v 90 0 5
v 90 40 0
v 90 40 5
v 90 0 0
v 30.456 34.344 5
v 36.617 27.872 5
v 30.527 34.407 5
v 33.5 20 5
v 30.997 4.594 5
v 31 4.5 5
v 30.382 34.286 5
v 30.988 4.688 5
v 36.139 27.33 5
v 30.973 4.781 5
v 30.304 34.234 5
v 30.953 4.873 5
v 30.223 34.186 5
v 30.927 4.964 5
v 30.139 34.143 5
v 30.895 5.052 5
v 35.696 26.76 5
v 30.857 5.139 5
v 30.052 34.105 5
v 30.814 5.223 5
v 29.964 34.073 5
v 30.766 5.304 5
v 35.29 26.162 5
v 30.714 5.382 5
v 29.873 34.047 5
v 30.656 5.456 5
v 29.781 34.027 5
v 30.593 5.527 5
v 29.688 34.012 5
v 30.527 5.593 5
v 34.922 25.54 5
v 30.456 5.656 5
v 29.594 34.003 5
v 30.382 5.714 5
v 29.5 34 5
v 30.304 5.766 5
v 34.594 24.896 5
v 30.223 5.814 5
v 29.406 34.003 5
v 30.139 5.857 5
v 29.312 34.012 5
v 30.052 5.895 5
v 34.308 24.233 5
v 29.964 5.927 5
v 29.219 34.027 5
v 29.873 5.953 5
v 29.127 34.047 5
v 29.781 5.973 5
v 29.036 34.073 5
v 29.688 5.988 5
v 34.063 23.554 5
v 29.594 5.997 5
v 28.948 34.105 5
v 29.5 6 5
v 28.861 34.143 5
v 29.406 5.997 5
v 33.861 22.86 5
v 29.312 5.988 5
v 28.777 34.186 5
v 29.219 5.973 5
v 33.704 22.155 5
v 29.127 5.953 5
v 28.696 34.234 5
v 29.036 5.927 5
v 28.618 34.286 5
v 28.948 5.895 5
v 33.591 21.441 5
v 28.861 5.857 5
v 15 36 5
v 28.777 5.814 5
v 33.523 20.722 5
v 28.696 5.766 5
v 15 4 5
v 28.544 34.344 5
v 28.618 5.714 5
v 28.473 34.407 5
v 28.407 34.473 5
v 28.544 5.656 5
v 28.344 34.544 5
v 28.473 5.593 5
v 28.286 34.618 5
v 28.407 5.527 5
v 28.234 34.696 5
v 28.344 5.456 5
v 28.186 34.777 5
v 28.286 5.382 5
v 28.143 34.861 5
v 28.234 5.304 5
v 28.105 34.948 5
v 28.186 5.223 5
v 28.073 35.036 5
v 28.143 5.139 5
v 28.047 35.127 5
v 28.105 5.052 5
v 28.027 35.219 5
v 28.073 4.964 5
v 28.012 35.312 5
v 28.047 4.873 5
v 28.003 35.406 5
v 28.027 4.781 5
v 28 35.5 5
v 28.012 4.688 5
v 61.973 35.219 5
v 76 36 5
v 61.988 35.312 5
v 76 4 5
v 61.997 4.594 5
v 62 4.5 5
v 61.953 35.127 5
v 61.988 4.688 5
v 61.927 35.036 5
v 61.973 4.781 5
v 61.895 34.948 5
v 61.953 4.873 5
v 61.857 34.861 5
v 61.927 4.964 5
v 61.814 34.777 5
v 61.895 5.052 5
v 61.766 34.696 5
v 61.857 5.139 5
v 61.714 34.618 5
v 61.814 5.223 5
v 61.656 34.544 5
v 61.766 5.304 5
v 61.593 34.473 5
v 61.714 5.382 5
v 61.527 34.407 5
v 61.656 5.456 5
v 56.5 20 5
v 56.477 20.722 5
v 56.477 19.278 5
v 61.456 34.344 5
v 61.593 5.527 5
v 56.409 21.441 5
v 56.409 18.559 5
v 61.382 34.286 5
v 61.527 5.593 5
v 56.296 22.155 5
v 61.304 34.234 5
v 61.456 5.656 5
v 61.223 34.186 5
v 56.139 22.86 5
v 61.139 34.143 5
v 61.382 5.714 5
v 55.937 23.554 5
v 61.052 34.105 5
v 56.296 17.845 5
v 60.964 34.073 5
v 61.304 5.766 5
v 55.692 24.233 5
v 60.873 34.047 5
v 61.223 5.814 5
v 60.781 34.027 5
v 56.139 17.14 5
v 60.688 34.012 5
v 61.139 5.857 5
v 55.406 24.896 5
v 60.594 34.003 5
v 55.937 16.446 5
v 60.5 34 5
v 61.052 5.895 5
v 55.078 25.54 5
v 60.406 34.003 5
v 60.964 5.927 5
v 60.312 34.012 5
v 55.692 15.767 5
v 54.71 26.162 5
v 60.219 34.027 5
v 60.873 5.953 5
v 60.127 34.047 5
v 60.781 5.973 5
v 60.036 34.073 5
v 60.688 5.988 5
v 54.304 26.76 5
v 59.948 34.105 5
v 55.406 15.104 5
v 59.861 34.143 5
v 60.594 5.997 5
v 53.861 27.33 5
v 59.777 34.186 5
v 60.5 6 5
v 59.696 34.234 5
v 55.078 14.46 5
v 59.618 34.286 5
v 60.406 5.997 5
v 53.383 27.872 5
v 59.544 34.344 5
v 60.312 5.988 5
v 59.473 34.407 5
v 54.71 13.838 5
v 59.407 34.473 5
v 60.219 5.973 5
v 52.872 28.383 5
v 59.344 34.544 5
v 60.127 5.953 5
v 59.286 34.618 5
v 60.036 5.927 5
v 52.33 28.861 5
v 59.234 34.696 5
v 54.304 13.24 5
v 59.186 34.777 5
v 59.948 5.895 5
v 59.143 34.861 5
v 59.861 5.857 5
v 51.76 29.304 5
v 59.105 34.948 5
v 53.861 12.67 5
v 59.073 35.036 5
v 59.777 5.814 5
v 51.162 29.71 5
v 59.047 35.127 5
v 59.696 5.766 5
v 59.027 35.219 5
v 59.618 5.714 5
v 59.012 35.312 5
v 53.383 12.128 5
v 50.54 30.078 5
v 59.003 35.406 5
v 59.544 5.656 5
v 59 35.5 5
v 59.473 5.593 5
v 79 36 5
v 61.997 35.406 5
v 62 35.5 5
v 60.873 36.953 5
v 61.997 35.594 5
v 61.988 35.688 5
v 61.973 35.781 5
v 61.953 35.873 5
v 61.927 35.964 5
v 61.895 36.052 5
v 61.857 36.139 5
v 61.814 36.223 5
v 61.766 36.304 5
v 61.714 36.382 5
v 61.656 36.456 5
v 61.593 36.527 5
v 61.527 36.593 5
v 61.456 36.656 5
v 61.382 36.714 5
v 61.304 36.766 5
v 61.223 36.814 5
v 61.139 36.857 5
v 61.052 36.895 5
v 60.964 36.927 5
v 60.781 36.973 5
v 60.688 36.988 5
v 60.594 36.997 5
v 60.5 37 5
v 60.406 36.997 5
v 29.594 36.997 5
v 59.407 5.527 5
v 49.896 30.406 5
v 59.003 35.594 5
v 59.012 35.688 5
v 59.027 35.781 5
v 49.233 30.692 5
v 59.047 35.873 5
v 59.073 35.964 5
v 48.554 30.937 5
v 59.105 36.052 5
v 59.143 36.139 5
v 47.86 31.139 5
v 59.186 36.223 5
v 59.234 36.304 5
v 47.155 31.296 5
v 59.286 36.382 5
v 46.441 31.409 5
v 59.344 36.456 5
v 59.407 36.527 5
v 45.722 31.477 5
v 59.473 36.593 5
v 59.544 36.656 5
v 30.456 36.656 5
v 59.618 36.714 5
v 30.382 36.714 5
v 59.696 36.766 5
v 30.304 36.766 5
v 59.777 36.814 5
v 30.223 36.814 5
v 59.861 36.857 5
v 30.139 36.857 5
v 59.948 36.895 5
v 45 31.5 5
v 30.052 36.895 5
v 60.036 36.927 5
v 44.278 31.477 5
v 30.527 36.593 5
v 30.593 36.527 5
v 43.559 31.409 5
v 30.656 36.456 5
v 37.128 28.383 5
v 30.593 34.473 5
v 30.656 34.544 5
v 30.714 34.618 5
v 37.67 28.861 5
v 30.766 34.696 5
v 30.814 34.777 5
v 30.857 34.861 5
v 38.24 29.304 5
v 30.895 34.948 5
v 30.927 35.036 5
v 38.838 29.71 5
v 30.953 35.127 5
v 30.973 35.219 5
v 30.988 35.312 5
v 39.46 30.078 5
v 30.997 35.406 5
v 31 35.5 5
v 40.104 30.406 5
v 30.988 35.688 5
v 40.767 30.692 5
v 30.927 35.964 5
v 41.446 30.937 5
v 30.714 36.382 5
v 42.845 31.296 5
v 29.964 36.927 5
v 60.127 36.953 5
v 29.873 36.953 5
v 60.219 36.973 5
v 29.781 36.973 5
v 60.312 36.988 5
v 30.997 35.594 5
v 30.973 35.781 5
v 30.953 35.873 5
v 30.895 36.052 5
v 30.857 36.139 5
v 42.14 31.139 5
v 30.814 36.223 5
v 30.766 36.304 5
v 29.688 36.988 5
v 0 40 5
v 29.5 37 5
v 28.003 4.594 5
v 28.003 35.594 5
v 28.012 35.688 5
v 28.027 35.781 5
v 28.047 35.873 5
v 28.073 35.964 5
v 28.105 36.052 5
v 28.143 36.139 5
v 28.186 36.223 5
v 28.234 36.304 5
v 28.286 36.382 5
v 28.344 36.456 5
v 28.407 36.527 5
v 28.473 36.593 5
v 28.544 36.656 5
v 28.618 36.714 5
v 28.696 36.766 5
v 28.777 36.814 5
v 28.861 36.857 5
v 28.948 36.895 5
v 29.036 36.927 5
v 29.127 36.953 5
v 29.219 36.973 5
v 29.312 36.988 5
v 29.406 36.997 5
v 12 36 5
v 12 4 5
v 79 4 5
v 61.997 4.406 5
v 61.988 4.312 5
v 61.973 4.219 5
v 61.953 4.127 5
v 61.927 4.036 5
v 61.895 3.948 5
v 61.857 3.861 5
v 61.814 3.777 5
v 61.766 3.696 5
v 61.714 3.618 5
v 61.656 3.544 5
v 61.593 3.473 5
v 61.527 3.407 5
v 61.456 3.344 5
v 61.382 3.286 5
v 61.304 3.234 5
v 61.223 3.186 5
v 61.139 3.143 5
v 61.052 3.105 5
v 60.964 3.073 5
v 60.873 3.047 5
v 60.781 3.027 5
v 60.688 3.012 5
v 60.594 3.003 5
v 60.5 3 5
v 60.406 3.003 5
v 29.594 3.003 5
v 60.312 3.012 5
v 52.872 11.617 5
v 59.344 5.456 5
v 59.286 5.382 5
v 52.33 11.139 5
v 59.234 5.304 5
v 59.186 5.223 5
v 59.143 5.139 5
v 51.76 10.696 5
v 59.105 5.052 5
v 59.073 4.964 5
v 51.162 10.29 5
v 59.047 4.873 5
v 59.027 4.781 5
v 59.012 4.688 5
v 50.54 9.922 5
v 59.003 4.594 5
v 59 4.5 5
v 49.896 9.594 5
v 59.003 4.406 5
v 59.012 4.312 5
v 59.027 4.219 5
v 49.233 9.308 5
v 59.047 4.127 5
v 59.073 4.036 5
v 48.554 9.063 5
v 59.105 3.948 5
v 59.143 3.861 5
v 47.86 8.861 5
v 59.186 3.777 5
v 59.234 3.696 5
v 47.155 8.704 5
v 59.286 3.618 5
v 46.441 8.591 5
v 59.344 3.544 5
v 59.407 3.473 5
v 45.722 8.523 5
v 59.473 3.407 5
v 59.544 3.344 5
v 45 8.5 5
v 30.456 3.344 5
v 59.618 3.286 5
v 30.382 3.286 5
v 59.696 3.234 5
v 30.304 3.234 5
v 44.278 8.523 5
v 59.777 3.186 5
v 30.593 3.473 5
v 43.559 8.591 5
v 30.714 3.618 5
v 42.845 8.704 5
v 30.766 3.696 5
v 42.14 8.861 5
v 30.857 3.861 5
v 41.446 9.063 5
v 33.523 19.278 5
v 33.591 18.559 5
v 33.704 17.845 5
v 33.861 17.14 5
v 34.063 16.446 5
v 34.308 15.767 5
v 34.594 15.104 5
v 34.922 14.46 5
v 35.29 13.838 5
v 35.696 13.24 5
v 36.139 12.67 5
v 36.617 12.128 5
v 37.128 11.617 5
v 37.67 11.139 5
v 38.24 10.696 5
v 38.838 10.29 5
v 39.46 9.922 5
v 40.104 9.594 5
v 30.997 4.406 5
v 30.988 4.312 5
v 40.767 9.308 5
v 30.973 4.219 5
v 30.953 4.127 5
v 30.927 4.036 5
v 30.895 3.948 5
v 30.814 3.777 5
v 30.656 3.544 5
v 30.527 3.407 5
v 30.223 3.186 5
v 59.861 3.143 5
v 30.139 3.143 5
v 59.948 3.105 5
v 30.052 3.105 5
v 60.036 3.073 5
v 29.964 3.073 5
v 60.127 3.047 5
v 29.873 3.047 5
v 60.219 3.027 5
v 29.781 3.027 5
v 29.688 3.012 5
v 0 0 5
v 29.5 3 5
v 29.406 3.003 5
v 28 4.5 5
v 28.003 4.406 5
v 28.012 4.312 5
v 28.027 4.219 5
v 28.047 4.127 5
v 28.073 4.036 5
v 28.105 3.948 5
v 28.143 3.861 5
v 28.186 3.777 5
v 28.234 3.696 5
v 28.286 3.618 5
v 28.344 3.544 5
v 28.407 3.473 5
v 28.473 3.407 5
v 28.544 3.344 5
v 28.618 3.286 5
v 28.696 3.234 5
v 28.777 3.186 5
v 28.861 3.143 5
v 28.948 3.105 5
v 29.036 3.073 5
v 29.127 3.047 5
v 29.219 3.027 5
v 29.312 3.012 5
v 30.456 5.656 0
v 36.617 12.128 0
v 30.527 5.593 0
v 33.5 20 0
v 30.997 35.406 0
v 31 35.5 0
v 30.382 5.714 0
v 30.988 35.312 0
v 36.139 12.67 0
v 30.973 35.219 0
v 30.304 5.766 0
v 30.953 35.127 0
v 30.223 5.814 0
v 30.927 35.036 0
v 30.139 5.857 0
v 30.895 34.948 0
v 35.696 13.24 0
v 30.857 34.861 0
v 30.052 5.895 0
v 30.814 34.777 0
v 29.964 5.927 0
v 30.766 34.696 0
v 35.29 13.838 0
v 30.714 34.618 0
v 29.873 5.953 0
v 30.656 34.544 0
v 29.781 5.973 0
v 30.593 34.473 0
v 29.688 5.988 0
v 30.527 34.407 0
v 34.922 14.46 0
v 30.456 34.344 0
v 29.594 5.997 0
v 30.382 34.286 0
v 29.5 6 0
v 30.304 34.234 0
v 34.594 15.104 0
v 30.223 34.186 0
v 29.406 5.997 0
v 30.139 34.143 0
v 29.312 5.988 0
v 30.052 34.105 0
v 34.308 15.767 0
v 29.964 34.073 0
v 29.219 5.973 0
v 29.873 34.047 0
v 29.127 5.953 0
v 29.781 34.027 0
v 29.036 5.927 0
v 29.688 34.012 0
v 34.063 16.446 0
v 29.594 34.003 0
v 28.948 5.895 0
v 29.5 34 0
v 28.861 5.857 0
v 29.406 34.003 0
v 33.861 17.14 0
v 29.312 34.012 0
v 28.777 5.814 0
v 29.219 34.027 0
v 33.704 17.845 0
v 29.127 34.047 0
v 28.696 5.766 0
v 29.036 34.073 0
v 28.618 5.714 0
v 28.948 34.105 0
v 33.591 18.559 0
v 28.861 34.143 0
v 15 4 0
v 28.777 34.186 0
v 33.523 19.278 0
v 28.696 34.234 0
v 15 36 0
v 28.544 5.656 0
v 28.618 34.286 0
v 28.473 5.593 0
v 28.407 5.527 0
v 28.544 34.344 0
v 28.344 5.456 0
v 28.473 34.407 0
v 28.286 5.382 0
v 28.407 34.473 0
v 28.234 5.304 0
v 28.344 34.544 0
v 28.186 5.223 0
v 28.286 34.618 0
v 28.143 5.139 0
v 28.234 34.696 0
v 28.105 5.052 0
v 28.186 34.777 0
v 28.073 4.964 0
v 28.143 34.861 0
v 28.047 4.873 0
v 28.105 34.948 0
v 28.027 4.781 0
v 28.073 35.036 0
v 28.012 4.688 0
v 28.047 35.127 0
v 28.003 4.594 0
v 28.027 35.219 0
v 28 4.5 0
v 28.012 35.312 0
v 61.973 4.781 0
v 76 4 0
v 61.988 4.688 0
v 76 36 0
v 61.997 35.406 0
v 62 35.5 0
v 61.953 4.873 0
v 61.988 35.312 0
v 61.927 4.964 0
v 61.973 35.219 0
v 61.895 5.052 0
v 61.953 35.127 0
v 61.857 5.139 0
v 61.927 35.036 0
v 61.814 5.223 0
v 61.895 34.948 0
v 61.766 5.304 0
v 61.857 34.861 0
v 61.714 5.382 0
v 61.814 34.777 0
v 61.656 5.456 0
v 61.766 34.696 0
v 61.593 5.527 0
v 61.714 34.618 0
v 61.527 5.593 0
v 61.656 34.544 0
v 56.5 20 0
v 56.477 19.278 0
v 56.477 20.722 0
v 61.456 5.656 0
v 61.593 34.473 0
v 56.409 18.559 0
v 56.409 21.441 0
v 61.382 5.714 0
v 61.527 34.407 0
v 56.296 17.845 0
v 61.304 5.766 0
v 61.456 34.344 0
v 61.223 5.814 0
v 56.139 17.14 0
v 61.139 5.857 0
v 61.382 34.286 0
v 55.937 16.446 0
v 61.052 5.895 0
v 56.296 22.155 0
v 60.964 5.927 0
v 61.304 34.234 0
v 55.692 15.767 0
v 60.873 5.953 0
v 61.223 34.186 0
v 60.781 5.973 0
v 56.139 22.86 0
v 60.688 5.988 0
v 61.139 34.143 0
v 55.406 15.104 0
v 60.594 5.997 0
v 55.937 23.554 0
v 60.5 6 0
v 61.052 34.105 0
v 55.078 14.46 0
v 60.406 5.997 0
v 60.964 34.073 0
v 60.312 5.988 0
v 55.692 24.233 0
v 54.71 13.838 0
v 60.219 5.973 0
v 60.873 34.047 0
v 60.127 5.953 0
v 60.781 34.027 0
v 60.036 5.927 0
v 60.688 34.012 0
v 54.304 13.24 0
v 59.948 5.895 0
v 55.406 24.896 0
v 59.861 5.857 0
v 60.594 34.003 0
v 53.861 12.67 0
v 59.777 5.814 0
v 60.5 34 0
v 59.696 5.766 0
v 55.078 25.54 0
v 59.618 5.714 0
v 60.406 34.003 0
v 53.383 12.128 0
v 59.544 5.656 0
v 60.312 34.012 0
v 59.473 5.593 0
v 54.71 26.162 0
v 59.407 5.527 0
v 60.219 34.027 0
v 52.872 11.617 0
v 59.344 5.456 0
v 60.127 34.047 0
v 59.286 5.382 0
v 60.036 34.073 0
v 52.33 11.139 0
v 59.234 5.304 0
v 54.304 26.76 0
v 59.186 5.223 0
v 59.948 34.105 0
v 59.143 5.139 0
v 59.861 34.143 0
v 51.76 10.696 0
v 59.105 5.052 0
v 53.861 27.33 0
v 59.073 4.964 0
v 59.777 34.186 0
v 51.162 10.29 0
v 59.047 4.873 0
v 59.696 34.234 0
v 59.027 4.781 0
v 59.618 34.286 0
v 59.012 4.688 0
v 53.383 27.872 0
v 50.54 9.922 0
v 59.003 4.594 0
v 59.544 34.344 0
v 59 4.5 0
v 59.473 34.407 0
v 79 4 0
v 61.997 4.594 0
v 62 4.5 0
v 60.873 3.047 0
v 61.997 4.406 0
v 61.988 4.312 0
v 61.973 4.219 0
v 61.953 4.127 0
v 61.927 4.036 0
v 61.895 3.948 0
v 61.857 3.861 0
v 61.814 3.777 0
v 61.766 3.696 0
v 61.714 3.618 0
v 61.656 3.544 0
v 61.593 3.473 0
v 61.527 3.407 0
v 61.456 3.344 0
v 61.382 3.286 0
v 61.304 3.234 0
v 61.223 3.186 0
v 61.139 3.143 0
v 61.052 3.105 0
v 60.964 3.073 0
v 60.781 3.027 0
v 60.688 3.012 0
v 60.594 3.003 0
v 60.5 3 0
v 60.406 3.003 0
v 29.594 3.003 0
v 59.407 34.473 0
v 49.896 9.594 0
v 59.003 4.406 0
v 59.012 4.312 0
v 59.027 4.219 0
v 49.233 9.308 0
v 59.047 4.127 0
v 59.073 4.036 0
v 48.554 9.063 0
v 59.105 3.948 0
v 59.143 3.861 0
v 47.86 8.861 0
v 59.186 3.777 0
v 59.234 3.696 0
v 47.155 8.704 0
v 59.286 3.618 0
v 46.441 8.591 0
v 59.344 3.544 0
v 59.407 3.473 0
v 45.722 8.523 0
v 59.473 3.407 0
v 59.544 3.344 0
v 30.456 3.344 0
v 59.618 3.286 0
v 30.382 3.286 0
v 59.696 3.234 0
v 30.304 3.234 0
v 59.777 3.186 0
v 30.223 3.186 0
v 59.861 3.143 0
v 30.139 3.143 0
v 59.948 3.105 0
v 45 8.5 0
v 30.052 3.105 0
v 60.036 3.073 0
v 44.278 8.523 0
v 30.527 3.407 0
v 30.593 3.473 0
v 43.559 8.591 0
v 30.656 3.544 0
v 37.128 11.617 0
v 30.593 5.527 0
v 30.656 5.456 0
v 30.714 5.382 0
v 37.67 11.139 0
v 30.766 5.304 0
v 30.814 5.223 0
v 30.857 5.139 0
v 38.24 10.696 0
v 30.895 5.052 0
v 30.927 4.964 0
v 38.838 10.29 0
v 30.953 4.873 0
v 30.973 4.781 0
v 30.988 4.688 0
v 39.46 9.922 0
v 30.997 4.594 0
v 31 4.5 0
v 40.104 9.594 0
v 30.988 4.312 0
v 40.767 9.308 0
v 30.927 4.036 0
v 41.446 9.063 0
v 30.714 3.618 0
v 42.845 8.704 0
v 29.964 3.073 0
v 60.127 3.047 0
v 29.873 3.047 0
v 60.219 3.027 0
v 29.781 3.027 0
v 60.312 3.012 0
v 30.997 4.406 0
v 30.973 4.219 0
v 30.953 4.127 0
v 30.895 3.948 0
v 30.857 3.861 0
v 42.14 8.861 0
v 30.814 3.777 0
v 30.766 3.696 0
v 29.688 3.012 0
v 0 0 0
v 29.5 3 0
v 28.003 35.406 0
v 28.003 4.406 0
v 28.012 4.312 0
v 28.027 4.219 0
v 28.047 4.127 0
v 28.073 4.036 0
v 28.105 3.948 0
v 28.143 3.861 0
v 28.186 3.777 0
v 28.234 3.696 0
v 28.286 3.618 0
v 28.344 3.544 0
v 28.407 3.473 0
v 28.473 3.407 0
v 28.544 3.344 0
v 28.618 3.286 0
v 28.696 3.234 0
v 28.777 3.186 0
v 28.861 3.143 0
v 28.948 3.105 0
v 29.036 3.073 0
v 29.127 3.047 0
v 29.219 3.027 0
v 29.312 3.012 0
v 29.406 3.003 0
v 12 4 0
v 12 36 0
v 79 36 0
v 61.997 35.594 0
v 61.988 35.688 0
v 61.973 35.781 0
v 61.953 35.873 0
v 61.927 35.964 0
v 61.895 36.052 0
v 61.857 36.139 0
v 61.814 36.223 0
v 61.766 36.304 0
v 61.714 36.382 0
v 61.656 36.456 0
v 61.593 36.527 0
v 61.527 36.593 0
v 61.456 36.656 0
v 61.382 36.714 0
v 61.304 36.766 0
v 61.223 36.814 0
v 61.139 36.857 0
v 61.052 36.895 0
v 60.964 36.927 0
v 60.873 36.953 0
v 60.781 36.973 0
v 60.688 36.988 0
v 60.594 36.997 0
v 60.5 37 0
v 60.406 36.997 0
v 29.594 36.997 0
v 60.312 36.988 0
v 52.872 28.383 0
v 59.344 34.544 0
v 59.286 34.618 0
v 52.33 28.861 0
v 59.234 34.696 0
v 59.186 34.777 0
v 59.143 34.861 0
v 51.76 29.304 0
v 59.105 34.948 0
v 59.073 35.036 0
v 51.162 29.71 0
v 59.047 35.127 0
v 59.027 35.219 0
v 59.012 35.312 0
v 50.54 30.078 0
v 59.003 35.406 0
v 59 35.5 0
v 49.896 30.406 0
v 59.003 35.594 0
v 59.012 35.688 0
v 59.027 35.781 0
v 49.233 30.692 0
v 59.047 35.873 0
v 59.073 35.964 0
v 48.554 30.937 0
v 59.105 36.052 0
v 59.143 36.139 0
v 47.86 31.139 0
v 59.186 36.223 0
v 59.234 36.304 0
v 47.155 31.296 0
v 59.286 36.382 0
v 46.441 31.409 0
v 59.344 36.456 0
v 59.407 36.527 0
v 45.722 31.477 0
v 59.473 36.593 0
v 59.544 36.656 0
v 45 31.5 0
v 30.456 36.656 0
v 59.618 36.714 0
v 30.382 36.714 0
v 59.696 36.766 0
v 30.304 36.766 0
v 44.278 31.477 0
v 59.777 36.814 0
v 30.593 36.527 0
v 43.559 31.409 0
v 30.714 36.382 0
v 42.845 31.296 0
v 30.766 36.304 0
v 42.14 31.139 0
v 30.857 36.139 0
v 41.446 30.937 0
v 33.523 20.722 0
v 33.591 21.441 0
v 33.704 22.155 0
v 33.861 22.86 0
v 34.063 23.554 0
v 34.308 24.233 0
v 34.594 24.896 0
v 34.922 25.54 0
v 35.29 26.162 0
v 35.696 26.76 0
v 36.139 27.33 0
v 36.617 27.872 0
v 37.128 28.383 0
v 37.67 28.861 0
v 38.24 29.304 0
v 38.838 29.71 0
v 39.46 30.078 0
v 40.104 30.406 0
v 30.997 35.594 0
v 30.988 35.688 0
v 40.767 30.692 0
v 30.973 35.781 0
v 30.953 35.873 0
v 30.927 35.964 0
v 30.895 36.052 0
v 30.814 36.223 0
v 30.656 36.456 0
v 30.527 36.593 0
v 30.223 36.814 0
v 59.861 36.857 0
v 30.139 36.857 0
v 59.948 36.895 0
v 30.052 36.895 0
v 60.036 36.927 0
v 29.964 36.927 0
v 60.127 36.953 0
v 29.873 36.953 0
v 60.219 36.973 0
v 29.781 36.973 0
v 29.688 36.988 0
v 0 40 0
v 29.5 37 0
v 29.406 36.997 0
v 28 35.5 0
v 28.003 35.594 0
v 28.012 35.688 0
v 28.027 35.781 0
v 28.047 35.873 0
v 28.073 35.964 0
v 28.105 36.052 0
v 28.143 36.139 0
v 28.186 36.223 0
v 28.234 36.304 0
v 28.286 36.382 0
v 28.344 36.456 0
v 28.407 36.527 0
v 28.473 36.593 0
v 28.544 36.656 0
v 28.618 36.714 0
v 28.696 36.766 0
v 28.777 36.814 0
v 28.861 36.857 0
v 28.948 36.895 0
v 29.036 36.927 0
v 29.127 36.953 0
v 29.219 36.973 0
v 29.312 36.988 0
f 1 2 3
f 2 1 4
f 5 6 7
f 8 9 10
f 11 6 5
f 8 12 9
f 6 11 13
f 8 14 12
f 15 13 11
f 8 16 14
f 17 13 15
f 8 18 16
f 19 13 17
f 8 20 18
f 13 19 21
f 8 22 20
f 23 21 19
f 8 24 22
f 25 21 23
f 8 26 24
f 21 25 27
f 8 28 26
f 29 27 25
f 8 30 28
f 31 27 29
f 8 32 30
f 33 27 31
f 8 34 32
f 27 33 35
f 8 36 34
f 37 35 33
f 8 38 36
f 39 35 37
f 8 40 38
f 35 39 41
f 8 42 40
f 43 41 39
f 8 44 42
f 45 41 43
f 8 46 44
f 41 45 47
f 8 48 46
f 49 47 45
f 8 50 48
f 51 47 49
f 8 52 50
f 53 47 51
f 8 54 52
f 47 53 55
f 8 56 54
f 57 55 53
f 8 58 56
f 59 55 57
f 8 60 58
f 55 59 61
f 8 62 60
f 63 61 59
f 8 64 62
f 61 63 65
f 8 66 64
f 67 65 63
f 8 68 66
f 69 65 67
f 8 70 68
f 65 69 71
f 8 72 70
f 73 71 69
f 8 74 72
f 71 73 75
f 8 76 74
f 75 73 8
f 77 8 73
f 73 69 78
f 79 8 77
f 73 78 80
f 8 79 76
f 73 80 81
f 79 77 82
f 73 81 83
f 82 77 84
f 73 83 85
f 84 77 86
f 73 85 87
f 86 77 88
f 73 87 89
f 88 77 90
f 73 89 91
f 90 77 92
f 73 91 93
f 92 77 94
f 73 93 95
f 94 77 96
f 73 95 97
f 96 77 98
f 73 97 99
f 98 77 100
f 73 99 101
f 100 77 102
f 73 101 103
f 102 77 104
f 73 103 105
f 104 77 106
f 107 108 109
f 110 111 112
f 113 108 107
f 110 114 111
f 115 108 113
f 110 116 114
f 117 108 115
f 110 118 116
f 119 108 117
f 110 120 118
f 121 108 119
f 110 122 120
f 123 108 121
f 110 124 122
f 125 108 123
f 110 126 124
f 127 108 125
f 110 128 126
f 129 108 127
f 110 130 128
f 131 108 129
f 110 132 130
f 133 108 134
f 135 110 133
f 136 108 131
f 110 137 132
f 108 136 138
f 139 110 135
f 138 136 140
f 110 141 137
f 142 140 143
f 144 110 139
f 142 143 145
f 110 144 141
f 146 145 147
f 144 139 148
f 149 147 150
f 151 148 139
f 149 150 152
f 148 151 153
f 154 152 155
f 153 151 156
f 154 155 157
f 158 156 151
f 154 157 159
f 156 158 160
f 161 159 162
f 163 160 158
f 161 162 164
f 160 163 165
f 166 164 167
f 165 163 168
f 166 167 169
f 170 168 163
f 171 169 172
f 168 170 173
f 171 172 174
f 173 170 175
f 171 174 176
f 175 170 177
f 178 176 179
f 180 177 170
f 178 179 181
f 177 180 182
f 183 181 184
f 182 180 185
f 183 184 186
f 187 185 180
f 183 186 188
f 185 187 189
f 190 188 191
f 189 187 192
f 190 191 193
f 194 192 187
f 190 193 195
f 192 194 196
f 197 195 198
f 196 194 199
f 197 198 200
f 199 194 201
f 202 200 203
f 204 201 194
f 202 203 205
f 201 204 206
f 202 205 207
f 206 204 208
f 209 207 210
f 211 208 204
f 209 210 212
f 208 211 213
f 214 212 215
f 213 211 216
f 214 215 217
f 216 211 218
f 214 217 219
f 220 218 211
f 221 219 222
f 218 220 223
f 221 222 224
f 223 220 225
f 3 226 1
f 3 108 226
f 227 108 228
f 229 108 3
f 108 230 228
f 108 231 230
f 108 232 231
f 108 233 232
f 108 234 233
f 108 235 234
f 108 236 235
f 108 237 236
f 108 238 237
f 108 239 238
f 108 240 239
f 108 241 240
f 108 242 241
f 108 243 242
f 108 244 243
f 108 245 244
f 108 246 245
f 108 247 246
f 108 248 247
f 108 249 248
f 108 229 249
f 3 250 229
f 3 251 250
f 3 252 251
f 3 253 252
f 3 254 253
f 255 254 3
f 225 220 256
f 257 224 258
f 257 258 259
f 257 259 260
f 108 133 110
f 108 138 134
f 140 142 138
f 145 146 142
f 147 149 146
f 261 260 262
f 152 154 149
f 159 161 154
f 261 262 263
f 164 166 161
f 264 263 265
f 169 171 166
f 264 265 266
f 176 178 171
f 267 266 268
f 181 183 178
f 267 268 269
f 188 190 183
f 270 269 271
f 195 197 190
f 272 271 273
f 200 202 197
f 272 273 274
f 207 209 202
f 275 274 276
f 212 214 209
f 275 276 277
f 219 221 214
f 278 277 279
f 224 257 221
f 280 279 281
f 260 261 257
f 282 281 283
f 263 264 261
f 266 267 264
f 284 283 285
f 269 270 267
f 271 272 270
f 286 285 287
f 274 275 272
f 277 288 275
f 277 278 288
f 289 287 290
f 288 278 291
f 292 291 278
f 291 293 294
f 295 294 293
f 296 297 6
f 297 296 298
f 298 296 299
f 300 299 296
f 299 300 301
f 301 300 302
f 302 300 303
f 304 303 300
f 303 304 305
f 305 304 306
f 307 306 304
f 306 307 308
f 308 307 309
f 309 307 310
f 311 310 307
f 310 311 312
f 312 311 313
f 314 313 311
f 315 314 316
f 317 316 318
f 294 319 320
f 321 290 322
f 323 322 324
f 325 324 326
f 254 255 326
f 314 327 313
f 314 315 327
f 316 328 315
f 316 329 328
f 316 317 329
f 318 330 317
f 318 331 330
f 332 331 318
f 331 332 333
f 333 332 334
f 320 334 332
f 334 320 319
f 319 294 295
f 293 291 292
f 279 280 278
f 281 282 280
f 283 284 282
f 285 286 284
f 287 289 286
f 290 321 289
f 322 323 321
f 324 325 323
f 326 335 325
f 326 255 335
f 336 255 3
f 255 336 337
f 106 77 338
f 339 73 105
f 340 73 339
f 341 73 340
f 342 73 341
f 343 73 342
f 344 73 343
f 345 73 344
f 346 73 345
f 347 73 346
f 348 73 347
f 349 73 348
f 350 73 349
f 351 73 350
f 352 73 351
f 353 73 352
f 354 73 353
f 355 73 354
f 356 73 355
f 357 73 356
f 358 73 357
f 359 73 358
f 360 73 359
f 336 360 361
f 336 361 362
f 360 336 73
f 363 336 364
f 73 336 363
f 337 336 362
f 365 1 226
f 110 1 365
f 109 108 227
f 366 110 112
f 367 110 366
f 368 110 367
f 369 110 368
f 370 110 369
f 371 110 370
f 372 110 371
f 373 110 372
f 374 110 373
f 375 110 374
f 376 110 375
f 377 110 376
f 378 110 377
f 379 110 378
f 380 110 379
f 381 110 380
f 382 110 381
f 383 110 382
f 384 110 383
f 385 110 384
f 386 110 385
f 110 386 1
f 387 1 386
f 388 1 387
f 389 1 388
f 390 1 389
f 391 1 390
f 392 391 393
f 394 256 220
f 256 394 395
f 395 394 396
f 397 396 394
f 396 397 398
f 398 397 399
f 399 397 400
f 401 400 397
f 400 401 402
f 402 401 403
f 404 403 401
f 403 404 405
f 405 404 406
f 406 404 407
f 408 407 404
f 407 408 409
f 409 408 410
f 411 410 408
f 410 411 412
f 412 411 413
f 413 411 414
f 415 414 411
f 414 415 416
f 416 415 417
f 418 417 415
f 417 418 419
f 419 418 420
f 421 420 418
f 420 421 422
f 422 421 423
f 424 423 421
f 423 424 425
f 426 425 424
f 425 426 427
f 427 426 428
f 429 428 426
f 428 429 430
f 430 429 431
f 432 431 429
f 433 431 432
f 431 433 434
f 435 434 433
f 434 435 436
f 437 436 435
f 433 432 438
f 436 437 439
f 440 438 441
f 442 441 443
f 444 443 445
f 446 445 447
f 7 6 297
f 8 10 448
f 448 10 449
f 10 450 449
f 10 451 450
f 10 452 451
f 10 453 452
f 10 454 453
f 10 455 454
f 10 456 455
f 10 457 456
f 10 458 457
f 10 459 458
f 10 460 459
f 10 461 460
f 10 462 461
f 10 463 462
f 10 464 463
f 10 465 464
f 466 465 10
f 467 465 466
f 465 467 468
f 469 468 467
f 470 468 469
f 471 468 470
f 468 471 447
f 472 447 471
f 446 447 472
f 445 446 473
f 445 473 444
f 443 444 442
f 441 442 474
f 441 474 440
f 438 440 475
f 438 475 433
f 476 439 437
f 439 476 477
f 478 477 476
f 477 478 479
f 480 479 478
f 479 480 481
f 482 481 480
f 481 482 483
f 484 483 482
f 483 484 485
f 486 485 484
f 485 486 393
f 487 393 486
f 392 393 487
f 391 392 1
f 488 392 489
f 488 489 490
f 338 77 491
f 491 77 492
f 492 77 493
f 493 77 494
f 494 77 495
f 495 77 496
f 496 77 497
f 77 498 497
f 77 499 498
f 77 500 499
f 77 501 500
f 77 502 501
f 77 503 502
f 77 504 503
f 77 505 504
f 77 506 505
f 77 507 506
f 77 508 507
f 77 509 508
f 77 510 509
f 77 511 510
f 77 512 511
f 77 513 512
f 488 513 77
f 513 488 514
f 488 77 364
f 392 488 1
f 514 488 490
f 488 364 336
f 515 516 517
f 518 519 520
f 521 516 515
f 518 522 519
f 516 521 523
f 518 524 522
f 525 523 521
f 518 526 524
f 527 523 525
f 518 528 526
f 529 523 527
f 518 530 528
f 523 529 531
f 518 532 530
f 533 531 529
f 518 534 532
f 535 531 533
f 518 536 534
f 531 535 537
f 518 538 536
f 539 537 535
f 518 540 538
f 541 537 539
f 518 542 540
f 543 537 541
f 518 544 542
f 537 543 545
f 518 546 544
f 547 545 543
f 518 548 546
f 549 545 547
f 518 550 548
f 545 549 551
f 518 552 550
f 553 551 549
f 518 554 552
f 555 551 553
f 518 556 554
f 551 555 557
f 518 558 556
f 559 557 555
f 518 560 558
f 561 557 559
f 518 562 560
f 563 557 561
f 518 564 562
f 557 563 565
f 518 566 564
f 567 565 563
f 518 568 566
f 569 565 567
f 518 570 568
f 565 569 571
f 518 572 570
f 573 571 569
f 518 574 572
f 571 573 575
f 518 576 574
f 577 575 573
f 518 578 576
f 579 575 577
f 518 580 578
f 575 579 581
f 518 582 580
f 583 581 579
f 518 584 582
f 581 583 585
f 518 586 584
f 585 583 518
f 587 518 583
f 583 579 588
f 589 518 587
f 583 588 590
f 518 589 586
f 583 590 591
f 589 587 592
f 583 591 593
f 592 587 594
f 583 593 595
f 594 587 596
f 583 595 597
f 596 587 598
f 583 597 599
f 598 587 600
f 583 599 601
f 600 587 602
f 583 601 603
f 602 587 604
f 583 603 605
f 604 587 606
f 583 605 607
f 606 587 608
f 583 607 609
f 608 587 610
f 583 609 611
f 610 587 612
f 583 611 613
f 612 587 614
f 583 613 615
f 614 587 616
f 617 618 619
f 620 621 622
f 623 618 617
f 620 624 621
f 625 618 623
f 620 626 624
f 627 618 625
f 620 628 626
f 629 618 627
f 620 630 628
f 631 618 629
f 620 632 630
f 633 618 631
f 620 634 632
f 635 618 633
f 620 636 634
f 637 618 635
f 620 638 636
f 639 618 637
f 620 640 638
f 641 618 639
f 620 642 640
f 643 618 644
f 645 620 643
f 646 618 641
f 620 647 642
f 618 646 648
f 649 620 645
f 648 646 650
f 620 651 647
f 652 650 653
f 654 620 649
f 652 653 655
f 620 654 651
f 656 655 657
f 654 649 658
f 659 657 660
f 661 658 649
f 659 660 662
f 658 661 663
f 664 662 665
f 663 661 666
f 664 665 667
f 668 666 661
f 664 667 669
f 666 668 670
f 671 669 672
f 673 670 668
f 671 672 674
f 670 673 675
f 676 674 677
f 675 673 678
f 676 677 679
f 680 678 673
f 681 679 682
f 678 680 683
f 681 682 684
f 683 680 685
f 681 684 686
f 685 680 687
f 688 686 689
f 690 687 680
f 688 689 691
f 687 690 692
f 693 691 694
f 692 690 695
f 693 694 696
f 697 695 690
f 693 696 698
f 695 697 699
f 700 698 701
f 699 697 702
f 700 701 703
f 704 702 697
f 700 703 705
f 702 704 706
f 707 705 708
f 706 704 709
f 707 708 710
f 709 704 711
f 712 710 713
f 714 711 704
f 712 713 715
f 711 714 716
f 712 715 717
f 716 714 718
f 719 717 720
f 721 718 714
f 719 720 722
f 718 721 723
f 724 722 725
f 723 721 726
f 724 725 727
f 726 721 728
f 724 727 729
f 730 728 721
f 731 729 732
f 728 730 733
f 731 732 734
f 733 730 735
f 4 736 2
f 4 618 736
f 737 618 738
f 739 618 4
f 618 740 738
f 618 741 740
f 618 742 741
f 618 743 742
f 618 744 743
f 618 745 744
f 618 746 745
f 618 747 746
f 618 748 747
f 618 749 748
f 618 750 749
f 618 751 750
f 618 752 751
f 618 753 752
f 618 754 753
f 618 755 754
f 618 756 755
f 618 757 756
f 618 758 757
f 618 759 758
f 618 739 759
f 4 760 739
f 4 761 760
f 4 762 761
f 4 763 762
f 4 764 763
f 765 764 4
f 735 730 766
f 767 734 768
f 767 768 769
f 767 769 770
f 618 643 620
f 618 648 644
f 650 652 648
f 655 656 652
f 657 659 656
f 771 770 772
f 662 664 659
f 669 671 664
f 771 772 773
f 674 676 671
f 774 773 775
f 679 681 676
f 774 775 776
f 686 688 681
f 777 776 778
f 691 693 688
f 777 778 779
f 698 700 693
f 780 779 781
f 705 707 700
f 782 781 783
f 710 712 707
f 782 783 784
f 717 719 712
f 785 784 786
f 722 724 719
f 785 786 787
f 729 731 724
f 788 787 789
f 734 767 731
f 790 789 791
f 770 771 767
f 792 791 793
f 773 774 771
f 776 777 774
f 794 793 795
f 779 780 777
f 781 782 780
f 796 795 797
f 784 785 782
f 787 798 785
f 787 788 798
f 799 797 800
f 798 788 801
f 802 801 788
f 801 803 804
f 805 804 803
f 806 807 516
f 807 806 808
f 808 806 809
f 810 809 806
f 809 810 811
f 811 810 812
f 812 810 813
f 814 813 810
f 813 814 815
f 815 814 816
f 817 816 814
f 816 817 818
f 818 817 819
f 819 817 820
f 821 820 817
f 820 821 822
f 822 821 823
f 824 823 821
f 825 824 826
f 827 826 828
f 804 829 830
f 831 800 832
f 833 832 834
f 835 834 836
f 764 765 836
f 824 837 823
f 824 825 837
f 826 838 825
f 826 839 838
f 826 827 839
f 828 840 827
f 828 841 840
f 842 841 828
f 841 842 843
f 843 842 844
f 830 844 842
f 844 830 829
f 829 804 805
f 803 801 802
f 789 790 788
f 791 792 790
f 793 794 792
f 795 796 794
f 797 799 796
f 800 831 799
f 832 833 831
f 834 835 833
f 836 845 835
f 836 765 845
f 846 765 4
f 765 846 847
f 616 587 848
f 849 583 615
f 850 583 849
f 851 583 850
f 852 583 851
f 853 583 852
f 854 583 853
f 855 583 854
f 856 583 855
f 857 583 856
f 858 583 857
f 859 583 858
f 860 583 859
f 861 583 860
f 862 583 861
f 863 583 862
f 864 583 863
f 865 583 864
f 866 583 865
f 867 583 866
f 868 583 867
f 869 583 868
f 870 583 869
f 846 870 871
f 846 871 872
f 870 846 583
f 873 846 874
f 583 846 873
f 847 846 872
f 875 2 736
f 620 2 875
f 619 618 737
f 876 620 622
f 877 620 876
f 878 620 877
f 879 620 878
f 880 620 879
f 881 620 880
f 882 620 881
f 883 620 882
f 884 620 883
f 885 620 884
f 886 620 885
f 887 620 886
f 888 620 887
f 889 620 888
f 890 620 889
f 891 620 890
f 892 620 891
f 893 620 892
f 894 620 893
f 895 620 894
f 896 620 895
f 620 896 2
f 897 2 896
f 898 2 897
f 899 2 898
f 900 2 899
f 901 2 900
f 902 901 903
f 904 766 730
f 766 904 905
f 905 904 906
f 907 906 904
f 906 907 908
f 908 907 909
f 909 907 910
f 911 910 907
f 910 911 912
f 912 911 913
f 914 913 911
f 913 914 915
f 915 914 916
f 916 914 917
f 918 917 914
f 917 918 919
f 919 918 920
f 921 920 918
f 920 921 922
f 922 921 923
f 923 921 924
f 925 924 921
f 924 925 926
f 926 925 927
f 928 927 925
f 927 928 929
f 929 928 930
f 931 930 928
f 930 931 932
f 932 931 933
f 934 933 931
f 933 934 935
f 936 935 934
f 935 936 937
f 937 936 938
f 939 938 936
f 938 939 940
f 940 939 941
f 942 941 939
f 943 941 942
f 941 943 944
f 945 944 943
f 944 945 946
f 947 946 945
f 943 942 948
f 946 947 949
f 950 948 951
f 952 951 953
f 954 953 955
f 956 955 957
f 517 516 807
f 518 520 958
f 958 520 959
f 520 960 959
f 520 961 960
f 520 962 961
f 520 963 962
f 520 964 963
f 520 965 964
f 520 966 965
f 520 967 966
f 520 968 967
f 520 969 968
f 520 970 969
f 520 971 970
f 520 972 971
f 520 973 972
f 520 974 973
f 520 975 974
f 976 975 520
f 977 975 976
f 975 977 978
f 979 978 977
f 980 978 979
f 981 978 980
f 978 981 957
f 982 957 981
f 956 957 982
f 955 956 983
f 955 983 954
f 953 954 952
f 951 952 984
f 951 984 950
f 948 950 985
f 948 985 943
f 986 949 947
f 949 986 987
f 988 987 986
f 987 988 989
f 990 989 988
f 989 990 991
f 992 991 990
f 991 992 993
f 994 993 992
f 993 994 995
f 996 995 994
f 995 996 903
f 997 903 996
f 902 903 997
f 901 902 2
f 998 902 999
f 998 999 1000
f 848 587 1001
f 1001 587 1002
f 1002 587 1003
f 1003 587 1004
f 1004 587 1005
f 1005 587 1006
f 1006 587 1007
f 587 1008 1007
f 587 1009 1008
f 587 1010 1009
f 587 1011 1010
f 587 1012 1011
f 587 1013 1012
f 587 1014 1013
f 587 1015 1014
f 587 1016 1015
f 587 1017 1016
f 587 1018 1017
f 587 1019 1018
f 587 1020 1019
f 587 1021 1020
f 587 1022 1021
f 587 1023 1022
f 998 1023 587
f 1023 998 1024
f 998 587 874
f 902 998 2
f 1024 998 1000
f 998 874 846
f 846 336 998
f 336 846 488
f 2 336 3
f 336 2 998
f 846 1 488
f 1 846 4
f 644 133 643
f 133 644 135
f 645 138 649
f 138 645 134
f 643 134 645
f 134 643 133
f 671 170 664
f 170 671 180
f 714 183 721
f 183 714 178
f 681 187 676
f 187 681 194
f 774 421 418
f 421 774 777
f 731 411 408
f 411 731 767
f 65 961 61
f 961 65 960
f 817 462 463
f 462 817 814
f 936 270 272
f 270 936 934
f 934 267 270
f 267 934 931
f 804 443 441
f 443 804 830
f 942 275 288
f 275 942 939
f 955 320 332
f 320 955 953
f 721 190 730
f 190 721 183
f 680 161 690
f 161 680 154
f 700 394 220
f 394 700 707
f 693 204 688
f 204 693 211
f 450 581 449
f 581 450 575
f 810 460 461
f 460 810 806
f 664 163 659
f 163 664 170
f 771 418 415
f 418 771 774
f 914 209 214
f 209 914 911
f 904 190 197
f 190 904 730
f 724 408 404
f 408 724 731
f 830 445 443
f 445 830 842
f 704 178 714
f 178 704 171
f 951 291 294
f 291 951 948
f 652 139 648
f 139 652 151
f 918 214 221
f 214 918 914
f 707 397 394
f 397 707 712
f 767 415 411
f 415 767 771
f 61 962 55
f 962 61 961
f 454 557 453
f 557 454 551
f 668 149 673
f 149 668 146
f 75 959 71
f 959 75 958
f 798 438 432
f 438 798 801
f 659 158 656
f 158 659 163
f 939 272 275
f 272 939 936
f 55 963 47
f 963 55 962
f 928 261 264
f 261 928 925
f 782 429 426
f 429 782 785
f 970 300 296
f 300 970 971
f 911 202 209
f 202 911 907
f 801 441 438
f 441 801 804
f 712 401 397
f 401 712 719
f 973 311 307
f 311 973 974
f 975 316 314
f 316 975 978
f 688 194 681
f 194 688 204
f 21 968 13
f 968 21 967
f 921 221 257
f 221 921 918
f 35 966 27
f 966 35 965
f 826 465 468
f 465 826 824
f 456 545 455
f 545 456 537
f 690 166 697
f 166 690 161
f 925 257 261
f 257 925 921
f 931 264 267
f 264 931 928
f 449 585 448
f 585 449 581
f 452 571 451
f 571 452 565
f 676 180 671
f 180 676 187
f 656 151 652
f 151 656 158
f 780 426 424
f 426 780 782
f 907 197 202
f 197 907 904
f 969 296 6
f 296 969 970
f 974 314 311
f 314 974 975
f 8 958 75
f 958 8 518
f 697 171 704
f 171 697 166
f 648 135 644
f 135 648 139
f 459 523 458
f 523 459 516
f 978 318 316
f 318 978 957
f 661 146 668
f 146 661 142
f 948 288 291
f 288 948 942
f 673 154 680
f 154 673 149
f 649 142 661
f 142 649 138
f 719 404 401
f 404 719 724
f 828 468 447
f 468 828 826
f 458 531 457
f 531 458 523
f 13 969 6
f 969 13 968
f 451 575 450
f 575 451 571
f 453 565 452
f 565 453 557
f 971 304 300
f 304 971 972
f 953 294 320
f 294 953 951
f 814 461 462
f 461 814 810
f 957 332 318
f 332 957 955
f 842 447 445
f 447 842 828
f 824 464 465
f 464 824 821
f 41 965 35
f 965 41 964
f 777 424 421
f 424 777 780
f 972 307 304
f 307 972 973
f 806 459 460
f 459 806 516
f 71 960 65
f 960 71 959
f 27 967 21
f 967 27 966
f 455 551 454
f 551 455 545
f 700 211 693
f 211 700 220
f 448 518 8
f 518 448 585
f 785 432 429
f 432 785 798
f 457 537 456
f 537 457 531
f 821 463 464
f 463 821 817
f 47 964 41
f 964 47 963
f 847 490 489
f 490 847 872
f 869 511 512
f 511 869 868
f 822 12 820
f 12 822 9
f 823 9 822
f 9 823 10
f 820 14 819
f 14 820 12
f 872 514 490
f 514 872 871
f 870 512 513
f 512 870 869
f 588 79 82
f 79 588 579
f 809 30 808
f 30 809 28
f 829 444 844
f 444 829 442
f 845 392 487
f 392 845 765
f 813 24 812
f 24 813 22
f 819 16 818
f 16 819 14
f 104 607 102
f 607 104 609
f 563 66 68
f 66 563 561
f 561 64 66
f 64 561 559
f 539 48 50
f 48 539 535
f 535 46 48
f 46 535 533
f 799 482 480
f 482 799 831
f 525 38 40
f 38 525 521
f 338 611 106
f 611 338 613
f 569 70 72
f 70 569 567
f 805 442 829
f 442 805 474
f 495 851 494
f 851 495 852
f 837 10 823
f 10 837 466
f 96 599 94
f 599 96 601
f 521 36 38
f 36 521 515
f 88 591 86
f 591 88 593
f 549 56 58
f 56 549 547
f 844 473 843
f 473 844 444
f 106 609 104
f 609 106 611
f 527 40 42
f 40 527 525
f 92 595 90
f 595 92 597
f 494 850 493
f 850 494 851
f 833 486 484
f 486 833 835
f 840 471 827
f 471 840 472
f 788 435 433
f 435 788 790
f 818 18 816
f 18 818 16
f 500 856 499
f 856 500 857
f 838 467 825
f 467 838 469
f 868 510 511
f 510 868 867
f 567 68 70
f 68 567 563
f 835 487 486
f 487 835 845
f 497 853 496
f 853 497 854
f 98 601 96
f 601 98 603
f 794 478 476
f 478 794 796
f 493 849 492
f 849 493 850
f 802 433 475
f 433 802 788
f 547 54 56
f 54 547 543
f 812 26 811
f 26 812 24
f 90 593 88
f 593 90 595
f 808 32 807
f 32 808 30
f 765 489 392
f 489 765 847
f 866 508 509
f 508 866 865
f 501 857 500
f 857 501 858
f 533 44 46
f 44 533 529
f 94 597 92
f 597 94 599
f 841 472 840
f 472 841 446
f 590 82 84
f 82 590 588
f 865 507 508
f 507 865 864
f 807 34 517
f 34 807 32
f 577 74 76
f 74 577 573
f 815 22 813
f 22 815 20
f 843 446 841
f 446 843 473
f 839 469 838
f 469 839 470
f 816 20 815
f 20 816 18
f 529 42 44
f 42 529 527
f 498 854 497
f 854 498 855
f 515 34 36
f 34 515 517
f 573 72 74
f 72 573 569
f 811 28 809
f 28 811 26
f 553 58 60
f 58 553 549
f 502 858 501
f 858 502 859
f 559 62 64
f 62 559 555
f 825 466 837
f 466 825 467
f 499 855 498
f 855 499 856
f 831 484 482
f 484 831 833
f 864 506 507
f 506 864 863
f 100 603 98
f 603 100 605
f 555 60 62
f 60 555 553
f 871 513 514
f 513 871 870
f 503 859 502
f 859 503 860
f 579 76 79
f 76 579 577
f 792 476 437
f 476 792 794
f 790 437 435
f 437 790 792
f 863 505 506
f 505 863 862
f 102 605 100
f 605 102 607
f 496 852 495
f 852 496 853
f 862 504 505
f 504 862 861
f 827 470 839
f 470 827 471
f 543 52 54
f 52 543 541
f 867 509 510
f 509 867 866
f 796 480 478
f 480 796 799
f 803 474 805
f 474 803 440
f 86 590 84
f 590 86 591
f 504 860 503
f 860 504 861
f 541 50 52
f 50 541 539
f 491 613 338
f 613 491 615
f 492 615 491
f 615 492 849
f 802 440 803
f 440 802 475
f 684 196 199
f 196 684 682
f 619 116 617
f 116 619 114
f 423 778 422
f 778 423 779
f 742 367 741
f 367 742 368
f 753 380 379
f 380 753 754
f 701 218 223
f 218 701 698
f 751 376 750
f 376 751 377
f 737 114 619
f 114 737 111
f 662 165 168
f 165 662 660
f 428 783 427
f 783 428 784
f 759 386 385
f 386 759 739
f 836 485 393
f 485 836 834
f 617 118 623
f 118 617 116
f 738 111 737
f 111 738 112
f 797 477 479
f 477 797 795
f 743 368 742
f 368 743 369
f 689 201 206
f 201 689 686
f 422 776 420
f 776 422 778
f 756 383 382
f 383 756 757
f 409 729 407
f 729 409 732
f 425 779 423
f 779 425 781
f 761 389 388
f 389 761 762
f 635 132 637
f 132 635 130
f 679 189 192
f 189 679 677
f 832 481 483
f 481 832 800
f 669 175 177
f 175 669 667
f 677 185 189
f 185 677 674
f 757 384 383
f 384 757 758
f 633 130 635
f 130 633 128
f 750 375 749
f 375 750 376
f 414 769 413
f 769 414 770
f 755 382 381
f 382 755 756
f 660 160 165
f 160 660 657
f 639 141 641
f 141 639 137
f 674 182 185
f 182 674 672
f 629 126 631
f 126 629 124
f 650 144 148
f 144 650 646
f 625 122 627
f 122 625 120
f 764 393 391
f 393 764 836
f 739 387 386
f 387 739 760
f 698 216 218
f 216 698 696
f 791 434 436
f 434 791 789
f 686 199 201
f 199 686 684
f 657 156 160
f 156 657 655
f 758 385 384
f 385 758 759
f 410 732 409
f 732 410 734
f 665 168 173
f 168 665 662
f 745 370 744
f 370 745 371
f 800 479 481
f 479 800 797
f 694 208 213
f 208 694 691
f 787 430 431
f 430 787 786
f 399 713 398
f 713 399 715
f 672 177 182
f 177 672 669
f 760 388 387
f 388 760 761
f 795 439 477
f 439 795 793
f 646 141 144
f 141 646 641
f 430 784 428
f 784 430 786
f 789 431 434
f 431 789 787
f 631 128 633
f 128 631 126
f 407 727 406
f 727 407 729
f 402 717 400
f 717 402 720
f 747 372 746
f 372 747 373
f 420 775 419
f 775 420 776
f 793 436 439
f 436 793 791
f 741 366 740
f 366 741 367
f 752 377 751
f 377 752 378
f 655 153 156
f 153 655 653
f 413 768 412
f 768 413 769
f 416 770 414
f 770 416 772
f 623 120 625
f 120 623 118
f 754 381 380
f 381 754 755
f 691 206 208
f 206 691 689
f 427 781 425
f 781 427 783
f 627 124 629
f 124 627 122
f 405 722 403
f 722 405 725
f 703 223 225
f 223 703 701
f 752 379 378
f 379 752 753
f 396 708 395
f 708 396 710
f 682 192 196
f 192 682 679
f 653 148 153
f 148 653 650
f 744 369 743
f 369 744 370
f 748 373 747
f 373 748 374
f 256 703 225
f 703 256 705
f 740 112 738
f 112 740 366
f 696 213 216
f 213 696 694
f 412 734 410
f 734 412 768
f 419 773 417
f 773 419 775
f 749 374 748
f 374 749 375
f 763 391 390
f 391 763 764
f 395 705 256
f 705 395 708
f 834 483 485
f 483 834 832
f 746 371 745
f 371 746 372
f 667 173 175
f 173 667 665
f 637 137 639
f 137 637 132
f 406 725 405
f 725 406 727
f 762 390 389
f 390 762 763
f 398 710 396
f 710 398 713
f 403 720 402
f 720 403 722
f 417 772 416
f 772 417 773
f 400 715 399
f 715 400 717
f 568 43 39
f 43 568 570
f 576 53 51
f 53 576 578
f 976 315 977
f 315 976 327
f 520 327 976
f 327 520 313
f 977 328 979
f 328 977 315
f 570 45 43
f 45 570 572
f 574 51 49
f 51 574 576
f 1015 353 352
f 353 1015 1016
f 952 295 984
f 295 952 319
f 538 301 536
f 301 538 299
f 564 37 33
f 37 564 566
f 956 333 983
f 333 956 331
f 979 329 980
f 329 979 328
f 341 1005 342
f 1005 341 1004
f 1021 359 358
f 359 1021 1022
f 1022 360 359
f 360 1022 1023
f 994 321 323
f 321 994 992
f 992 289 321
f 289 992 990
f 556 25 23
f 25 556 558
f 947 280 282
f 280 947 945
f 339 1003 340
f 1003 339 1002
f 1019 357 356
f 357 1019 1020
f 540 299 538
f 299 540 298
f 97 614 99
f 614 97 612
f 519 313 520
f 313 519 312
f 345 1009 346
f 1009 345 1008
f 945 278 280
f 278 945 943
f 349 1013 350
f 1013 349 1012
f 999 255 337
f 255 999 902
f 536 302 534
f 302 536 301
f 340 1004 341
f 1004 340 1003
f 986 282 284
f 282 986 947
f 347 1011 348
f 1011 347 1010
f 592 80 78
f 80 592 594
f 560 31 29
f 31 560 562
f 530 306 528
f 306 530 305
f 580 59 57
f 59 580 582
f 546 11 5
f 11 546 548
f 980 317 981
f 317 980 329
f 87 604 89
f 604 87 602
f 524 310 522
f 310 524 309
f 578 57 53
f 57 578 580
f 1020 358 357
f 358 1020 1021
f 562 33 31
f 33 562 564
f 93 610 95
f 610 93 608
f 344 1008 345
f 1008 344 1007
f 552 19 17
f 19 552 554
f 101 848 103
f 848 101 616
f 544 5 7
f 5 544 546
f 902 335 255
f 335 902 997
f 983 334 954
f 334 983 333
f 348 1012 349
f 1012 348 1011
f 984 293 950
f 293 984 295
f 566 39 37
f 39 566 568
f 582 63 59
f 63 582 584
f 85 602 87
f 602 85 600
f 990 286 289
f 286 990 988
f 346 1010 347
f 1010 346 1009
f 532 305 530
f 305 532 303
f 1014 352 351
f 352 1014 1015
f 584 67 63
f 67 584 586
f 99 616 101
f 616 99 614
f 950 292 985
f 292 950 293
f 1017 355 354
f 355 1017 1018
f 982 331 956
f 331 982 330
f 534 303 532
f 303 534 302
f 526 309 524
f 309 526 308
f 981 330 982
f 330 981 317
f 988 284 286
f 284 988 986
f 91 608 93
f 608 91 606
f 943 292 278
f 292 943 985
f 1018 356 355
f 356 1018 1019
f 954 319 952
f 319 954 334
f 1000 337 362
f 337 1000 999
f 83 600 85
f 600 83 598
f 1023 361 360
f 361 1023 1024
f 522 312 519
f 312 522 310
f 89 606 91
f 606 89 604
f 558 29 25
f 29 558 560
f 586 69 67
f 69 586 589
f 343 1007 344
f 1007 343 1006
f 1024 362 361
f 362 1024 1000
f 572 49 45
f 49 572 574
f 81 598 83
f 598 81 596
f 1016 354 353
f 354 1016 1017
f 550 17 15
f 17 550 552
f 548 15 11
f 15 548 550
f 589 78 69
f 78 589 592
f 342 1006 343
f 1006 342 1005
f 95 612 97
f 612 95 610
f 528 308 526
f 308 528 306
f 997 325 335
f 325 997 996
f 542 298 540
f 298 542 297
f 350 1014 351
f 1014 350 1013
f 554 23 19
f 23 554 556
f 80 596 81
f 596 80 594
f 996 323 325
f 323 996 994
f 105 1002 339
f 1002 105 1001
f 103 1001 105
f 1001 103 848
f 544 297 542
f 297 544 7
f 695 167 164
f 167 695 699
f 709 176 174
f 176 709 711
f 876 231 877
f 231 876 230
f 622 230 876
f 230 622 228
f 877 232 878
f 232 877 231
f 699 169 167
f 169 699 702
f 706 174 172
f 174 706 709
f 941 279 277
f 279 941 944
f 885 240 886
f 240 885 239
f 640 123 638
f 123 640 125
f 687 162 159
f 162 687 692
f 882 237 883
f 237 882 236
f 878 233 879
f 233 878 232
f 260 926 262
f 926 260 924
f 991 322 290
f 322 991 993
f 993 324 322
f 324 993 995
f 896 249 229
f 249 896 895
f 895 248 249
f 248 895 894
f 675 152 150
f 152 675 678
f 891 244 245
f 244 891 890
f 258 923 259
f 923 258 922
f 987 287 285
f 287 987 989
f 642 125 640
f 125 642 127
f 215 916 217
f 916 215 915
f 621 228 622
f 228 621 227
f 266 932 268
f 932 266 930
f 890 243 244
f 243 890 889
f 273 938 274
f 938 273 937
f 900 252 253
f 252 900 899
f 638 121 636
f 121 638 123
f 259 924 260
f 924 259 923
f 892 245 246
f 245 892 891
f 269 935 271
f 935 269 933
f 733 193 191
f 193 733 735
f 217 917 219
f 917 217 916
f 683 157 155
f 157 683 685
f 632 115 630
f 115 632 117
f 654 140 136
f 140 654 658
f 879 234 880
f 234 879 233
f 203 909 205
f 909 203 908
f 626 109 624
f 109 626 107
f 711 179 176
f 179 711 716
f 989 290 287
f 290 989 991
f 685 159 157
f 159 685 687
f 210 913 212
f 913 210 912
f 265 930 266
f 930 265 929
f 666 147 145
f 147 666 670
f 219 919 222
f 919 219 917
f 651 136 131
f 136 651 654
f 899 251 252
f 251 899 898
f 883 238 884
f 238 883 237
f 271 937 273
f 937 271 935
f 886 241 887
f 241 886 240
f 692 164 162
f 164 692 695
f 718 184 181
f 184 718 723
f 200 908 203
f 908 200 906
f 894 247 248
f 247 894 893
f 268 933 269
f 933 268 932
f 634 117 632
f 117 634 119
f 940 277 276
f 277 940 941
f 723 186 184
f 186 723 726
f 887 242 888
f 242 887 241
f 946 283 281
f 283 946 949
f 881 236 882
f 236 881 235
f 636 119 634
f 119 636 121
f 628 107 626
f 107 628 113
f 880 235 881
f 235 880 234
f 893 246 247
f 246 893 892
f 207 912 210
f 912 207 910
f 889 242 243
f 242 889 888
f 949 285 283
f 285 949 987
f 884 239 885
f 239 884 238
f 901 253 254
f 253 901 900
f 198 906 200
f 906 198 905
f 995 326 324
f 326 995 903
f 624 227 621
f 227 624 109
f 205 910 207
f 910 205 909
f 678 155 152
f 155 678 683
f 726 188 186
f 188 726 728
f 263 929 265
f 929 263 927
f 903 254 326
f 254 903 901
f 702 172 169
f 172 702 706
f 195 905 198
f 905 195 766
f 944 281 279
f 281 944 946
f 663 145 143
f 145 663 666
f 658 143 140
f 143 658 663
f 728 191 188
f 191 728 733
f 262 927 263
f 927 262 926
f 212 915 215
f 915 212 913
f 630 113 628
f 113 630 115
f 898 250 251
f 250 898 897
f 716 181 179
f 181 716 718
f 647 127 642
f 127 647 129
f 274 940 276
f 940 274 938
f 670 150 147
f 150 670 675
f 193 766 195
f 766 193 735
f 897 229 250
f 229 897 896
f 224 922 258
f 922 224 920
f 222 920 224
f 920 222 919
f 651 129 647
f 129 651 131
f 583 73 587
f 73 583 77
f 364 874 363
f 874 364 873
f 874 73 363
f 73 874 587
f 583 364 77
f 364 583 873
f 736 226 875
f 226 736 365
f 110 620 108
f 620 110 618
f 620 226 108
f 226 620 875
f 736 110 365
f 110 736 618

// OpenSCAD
$fn = 100;

espesor = 5;
ancho = 40; 
largo = 90;
separacionTornillos = 31;


difference(){
    difference(){
        cube([largo, ancho, espesor]);
        translate([largo * 0.5, ancho * 0.5, 0])
        cylinder(h = espesor*3, d = 23, center = true); 
    }

// tornillos
//----------
    translate(
        [(largo * 0.5) - (separacionTornillos * 0.5),
        (ancho * 0.5) - (separacionTornillos * 0.5),
        0])
    cylinder(h = 100, d = 3, center = true);
        
    translate(
        [(largo * 0.5) + (separacionTornillos * 0.5),
        (ancho * 0.5) - (separacionTornillos * 0.5),
        0])
    cylinder(h = 100, d = 3, center = true);

    translate(
        [(largo * 0.5) - (separacionTornillos * 0.5),
        (ancho * 0.5) + (separacionTornillos * 0.5),
        0])
    cylinder(h = 100, d = 3, center = true);

    translate(
        [(largo * 0.5) + (separacionTornillos * 0.5),
        (ancho * 0.5) + (separacionTornillos * 0.5),
        0])
    cylinder(h = 100, d = 3, center = true);

// aletas
// ------

    translate(
        [12, 
        (ancho * 0.5 - ancho * 0.4),
        0])
    cube([3, ancho * 0.8, 10]);

    translate(
        [largo -14, 
        (ancho * 0.5 - ancho * 0.4),
        0])
    cube([3, ancho * 0.8, 10]);
}
